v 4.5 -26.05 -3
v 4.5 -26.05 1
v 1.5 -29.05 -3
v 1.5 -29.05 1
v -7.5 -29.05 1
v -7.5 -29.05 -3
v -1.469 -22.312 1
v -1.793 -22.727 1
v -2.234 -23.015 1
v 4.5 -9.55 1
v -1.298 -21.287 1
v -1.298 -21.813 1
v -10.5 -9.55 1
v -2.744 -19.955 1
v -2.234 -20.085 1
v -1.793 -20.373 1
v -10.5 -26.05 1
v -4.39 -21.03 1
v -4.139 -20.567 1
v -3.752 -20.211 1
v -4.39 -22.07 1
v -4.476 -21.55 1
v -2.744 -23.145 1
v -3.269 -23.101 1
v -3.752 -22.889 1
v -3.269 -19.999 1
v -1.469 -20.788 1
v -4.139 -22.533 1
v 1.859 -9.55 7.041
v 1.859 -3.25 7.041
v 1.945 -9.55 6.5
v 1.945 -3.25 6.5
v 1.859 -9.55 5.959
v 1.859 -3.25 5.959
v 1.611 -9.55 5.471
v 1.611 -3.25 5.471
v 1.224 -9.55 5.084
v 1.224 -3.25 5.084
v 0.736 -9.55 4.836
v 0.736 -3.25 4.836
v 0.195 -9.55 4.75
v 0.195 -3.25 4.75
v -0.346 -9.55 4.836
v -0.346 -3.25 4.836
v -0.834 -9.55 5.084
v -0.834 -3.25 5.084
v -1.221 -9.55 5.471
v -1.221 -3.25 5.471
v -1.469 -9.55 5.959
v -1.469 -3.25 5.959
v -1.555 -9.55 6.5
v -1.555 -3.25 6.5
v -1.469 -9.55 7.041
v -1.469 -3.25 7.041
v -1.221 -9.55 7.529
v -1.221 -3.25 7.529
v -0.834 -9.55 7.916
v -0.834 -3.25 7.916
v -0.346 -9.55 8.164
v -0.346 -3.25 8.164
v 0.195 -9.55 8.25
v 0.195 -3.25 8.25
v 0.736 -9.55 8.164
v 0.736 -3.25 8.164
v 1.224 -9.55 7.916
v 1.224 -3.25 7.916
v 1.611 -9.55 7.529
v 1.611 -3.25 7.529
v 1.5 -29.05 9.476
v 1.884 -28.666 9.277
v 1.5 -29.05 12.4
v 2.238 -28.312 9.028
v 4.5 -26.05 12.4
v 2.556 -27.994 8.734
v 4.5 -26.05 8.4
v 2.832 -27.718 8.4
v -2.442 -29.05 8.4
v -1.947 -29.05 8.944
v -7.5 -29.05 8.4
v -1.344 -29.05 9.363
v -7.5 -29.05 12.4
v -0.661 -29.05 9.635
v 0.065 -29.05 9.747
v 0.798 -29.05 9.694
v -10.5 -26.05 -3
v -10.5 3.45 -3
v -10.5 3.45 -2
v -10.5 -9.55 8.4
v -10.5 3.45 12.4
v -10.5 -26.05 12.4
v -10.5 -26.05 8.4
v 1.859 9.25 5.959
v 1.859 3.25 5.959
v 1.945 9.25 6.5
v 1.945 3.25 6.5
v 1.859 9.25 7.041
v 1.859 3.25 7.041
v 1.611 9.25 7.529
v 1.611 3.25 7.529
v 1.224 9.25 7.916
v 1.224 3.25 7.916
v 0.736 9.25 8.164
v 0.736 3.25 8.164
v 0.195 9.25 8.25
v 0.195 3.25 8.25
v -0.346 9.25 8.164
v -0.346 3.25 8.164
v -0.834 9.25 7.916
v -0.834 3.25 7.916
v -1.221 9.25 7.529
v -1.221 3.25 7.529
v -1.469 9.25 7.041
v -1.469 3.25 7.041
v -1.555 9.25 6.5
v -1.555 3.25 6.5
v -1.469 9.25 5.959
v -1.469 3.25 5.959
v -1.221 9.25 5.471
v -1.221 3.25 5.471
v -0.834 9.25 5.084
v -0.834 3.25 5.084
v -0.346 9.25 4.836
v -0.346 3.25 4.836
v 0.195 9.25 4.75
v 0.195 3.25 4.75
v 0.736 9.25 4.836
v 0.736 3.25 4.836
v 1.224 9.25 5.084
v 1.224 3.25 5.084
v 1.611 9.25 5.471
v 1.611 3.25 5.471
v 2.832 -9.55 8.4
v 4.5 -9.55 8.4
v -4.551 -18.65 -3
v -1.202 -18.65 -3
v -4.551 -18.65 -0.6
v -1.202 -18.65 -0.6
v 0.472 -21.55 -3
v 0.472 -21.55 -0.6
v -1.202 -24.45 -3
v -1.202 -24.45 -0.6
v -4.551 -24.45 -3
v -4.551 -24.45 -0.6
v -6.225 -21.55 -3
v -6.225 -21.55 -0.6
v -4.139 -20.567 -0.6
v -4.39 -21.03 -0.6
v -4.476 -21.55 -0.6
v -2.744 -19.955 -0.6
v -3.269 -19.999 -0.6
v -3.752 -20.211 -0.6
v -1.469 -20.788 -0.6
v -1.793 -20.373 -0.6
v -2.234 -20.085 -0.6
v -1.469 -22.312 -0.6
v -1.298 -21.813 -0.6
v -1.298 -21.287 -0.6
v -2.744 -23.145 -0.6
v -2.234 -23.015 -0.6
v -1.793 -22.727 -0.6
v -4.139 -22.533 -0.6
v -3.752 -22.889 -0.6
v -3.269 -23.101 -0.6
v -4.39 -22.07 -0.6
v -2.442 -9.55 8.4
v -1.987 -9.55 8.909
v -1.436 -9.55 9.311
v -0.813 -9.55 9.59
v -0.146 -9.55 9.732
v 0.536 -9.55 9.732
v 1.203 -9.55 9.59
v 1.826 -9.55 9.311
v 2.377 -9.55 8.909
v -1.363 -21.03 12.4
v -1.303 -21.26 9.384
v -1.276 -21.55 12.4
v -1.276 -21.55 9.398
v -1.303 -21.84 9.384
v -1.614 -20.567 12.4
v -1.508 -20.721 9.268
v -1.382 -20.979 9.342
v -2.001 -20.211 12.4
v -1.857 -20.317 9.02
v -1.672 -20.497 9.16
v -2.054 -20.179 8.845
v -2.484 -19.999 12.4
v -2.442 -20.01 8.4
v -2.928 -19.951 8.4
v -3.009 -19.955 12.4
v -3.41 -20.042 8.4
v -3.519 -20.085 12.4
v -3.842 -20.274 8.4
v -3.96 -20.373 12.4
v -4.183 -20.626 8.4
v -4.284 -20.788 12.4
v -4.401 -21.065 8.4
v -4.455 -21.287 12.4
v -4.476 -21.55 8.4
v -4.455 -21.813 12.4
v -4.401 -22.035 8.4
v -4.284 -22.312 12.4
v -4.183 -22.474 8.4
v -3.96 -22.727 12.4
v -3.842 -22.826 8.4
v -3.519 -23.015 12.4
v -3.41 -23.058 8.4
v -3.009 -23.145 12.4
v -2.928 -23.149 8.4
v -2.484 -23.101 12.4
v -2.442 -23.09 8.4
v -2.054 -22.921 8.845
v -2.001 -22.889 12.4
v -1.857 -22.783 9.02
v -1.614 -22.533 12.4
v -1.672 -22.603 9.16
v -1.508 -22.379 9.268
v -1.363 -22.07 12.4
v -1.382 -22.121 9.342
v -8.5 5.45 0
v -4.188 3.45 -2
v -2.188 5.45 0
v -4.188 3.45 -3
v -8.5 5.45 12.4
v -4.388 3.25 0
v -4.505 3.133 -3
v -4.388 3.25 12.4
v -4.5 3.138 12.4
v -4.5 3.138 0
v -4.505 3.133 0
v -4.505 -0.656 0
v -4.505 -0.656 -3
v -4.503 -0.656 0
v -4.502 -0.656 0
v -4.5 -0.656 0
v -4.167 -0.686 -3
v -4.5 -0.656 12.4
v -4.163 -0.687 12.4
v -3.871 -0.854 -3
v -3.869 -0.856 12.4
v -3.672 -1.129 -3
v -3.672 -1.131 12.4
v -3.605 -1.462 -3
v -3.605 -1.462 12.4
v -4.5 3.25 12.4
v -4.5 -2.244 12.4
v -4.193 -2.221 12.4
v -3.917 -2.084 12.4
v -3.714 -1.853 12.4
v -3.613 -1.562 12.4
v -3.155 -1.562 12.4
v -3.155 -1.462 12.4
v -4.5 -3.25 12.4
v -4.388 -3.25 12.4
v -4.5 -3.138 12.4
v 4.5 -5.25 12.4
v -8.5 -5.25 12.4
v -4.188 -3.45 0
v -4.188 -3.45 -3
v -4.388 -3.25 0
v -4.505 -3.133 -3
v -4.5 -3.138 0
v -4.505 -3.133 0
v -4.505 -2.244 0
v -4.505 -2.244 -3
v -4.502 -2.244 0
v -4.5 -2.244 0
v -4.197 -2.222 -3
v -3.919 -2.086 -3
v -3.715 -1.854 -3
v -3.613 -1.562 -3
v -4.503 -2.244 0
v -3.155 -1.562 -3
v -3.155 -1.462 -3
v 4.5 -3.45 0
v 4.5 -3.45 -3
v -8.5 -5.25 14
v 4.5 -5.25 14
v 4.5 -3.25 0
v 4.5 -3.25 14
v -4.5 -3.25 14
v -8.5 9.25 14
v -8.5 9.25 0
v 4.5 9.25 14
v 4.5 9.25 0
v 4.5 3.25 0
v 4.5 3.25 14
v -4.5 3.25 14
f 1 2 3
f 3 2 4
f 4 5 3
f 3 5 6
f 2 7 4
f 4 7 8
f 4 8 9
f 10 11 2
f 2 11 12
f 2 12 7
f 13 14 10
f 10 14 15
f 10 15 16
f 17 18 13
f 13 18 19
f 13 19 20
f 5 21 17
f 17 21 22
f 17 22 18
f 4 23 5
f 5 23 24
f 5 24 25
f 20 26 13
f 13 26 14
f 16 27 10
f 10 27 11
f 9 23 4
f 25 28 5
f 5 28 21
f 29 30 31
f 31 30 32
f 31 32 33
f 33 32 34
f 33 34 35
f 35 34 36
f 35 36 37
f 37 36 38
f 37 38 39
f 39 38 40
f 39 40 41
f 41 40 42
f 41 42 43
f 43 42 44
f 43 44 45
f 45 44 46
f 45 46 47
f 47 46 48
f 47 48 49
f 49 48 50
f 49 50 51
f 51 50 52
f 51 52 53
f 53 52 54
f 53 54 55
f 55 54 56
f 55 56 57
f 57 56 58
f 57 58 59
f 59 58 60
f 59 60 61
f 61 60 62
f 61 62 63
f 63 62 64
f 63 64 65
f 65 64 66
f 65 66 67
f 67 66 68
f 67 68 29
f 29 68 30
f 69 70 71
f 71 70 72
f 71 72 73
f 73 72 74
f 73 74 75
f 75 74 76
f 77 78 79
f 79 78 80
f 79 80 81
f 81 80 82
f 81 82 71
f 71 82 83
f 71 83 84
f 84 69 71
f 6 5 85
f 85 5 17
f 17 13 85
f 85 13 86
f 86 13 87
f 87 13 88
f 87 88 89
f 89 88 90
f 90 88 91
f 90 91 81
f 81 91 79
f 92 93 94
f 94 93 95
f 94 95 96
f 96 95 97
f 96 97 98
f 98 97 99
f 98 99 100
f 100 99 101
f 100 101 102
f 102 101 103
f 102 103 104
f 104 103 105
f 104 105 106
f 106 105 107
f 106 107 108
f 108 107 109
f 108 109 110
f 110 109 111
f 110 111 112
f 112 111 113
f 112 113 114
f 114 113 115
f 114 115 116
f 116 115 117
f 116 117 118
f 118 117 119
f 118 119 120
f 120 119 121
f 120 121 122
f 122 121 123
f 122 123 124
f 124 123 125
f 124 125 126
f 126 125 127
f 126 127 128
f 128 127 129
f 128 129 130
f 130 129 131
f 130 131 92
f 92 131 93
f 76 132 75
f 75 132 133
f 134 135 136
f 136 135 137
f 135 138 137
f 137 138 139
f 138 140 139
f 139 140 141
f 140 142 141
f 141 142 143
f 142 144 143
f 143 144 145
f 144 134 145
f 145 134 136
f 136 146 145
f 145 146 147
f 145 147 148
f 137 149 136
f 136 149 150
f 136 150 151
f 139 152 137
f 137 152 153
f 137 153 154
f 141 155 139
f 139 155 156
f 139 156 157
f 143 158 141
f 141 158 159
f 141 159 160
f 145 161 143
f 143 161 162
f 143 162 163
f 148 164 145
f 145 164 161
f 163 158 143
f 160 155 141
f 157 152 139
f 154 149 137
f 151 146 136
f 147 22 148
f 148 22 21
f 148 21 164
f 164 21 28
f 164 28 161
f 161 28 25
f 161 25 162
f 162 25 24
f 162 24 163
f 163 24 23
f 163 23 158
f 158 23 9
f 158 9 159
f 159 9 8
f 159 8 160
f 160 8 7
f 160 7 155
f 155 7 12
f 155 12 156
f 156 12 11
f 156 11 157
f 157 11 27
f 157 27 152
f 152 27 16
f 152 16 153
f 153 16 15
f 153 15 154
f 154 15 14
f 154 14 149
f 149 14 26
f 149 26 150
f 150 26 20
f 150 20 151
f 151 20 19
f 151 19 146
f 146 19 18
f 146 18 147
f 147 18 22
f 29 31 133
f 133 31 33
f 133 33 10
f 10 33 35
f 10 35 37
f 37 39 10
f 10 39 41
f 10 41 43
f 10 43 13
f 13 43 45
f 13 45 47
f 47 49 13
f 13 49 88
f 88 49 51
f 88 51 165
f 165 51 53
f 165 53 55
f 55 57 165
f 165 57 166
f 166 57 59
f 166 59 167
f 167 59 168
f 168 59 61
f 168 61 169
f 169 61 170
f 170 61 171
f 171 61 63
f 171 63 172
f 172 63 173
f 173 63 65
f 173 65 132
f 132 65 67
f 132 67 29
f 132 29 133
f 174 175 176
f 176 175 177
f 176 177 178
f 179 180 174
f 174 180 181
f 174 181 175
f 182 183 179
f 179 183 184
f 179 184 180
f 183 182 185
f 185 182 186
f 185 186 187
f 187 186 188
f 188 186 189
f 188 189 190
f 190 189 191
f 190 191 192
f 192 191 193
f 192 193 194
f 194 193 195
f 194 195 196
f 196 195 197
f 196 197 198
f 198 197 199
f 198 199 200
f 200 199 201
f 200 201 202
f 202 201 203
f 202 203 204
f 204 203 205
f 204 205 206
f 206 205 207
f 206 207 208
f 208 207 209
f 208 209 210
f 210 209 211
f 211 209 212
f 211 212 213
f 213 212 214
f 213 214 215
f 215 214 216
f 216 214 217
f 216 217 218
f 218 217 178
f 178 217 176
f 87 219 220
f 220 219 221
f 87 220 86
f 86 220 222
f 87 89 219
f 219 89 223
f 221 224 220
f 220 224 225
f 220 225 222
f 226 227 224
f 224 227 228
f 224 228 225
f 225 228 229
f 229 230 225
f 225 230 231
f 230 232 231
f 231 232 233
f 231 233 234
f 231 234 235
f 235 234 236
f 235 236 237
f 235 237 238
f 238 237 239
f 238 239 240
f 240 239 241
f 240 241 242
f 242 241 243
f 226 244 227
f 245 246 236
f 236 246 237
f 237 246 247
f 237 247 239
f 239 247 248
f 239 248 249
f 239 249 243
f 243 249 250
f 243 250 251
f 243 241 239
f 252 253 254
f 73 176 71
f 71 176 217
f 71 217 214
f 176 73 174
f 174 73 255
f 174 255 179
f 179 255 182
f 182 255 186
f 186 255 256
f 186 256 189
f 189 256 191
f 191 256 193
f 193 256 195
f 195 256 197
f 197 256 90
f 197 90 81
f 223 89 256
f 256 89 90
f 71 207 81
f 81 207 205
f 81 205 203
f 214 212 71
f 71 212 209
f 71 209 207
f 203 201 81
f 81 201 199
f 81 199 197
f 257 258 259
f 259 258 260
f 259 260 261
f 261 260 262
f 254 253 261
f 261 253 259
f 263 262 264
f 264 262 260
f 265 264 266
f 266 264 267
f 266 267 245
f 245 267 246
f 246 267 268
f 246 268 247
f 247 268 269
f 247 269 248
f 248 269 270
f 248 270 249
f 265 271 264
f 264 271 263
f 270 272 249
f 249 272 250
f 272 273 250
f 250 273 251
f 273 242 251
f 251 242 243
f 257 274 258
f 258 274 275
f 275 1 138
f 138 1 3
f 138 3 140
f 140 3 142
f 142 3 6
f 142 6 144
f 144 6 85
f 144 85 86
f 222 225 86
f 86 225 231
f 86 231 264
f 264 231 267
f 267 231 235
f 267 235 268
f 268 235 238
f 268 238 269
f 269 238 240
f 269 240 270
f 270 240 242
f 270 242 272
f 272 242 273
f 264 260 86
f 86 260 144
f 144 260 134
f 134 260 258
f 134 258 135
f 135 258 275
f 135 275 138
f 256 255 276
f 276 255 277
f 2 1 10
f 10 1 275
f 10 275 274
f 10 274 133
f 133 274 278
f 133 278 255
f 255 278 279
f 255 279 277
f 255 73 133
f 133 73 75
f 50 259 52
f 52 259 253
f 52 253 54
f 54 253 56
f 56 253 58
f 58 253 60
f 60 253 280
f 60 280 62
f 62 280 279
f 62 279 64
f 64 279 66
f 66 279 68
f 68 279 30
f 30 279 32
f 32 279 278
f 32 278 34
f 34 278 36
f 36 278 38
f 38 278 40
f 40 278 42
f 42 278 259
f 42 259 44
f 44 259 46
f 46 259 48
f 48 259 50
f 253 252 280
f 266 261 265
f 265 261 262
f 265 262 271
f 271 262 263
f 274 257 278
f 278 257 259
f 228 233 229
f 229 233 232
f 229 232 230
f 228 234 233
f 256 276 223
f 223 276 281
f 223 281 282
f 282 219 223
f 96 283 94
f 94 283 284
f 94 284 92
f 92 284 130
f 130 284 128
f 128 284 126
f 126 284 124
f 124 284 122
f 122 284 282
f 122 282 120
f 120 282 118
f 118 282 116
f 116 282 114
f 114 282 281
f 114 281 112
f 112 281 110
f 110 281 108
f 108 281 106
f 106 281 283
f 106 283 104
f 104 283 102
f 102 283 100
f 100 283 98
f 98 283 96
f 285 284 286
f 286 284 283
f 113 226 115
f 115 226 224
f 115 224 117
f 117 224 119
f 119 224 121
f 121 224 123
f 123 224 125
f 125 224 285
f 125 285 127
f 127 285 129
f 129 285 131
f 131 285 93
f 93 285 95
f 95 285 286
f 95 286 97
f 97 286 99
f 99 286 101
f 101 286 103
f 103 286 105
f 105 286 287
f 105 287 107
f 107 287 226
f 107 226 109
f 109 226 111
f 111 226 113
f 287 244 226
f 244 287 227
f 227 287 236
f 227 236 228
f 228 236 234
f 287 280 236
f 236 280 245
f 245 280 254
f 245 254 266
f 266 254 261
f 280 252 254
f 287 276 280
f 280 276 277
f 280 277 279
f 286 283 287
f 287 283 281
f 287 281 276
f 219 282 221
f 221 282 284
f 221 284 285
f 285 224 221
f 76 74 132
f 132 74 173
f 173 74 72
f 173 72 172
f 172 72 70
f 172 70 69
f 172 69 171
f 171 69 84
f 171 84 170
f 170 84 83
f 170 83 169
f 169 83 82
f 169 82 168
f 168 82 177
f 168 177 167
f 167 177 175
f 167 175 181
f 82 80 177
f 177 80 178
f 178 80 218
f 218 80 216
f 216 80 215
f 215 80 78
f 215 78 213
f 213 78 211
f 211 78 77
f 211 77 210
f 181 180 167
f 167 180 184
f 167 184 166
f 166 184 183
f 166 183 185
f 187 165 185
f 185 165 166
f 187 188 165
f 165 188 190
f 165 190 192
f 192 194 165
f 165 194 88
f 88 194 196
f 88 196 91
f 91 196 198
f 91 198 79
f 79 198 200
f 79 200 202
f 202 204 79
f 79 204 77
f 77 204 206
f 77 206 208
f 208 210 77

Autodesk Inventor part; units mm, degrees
ref_plane "YZ Plane" through (0, 0, 0) normal (1, 0, 0) x (0, 1, 0)
ref_plane "XZ Plane" through (0, 0, 0) normal (0, 1, 0) x (-1, 0, 0)
ref_plane "XY Plane" through (0, 0, 0) normal (0, 0, 1) x (1, 0, 0)
sketch "Эскиз2" plane through (0, 0, 0) normal (0, 0, 1) x (1, 0, 0)
  line L0 (-4.5, 3.25) -> (4.5, 3.25)
  line L1 (4.5, 3.25) -> (4.5, -3.25)
  line L2 (4.5, -3.25) -> (-4.5, -3.25)
  line L3 (-4.5, -3.25) -> (-4.5, 3.25)
  line L4 (-4.5, 3.25) -> (4.5, -3.25) construction
  line L5 (4.5, 3.25) -> (-4.5, -3.25) construction
  line L6 (8.5, 9.25) -> (4.5, 9.25) construction
  line L7 (-8.5, 9.25) -> (-8.5, -5.25)
  line L8 (-8.5, -5.25) -> (4.5, -5.25)
  line L9 (8.5, -5.25) -> (8.5, 9.25) construction
  line L10 (4.5, 3.25) -> (4.5, 9.25)
  line L11 (4.5, -3.25) -> (4.5, -5.25)
  line L12 (4.5, 9.25) -> (-8.5, 9.25)
  line L13 (4.5, -5.25) -> (8.5, -5.25) construction
  point P0 (0, 0)
  dimension "d0" = 9
  dimension "d1" = 6.5
  dimension "d2" = 6
extrude "Выдавливание1" add sketch "Эскиз2" along normal blind 14 contours L3 L2 L11 L8 L7 L12 L10 L0
sketch "Эскиз4" plane through (0, 0, 0) normal (0, 0, -1) x (-1, 0, 0)
  line L0 (2.9551, -1.2625) -> (2.9551, -1.7625) construction
  line L1 (2.9551, -1.7625) -> (3.4551, -1.7625) construction
  arc A0 (3.4551, -1.7625) -> (4.305, -2.445) centre (4.405, -1.45) ccw construction
  line L2 (4.305, -2.445) -> (4.305, -3.05) construction
  line L3 (4.305, -3.05) -> (4.105, -3.25) construction
  line L4 (4.105, -3.25) -> (-4.495, -3.25) construction
  line L5 (-4.495, -3.25) -> (-4.695, -3.05) construction
  line L6 (-4.695, -3.05) -> (-4.695, -2.445) construction
  arc A1 (-4.695, -2.445) -> (-3.8451, -1.7625) centre (-4.795, -1.45) ccw construction
  line L7 (-3.8451, -1.7625) -> (-3.3451, -1.7625) construction
  line L8 (-3.3451, -1.7625) -> (-3.3451, -1.2625) construction
  line L9 (-3.3451, -1.2625) -> (-3.8127, -1.2625) construction
  arc A2 (-3.8127, -1.2625) -> (-4.695, -0.455) centre (-4.795, -1.45) ccw construction
  line L10 (-4.695, -0.455) -> (-4.695, 3.05) construction
  line L11 (-4.695, 3.05) -> (-4.495, 3.25) construction
  line L12 (-4.495, 3.25) -> (4.105, 3.25) construction
  line L13 (4.105, 3.25) -> (4.305, 3.05) construction
  line L14 (4.305, 3.05) -> (4.305, -0.455) construction
  arc A3 (4.305, -0.455) -> (3.4227, -1.2625) centre (4.405, -1.45) ccw construction
  line L15 (3.4227, -1.2625) -> (2.9551, -1.2625) construction
  line L16 (4.1878, 3.45) -> (-4.5778, 3.45) construction
  line L17 (-4.5778, 3.45) -> (-4.895, 3.1328) construction
  line L18 (-4.895, 3.1328) -> (-4.895, -0.6563) construction
  arc A4 (-3.9951, -1.4625) -> (-4.895, -0.6563) centre (-4.795, -1.45) ccw construction
  line L19 (-3.9951, -1.4625) -> (-3.5451, -1.4625) construction
  line L20 (-3.5451, -1.4625) -> (-3.5451, -1.5625) construction
  line L21 (-3.5451, -1.5625) -> (-4.0029, -1.5625) construction
  arc A5 (-4.895, -2.2437) -> (-4.0029, -1.5625) centre (-4.795, -1.45) ccw construction
  line L22 (-4.895, -2.2437) -> (-4.895, -3.1328) construction
  line L23 (-4.895, -3.1328) -> (-4.5778, -3.45) construction
  line L24 (-4.5, -3.45) -> (4.1878, -3.45)
  line L25 (4.1878, -3.45) -> (4.505, -3.1328)
  line L26 (4.505, -3.1328) -> (4.505, -2.2437)
  arc A6 (3.6129, -1.5625) -> (4.505, -2.2437) centre (4.405, -1.45) ccw
  line L27 (3.6129, -1.5625) -> (3.1551, -1.5625)
  line L28 (3.1551, -1.5625) -> (3.1551, -1.4625)
  line L29 (3.1551, -1.4625) -> (3.6051, -1.4625)
  arc A7 (4.505, -0.6563) -> (3.6051, -1.4625) centre (4.405, -1.45) ccw
  line L30 (4.505, -0.6563) -> (4.505, 3.1328)
  line L31 (4.505, 3.1328) -> (4.1878, 3.45)
  line L32 (4.1878, 3.45) -> (8.5, 3.45)
  line L33 (8.5, 9.25) -> (8.5, -5.25) projected
  line L34 (-4.5, -5.25) -> (-4.5, -3.25) projected
  line L35 (-4.5, -3.45) -> (-4.5, -29.05)
  line L36 (-4.5, -29.05) -> (10.5, -29.05)
  line L37 (10.5, -29.05) -> (10.5, 3.45)
  line L38 (10.5, 3.45) -> (8.5, 3.45)
  point P0 (0, 0)
  dimension "d10" = 0.2
  dimension "d12" = 4.3122
  dimension "d13" = 15
extrude "Выдавливание3" add sketch "Эскиз4" along normal blind 3 and the other way blind 12.4
chamfer "Фаска1" distance 2 angle 45 1 edges at (-8.5, 3.45, 6.2)
chamfer "Фаска2" distance 2 angle 45 1 edges at (-6.3439, 3.45, 0)
ref_plane "РабПлоскость1" through (0, 0, 4.7) normal (0, 0, -1) x (-1, 0, 0)
sketch "Эскиз5" plane through (0, 0, 4.7) normal (0, 0, -1) x (-1, 0, 0)
  circle A0 centre (2.8764, -21.55) radius 11 construction
  line L0 (-4.5, -29.05) -> (10.5, -29.05) construction
  circle A1 centre (2.8764, -21.55) radius 1.6
  line L1 (10.5, -29.05) -> (10.5, 3.45) projected
  line L2 (10.5, -29.05) -> (10.5, -9.55)
  line L3 (10.5, -9.55) -> (-4.5, -9.55)
  line L4 (-4.5, -3.45) -> (-4.5, -29.05) projected
  line L5 (-4.5, -9.55) -> (-4.5, -29.05)
  line L6 (-4.5, -29.05) -> (10.5, -29.05)
  point P0 (0, 0)
  dimension "d27" = 22
  dimension "d28" = 7.5
  dimension "d29" = 3.2
  dimension "d30" = 12
extrude "Выдавливание4" cut sketch "Эскиз5" along normal mid plane 7.4
extrude "Выдавливание5" cut sketch "Эскиз5" along normal mid plane 20 contours A1
sketch "Эскиз6" plane through (0, 0, -3) normal (0, 0, -1) x (-1, 0, 0)
  circle A0 centre (2.8764, -21.55) radius 1.6 construction
  circle A1 centre (2.8764, -21.55) radius 1.6 projected
  line L0 (4.5507, -24.45) -> (1.2021, -24.45)
  line L1 (1.2021, -24.45) -> (-0.4722, -21.55)
  line L2 (-0.4722, -21.55) -> (1.2021, -18.65)
  line L3 (1.2021, -18.65) -> (4.5507, -18.65)
  line L4 (4.5507, -18.65) -> (6.2251, -21.55)
  line L5 (6.2251, -21.55) -> (4.5507, -24.45)
  line L6 (-4.5, -29.05) -> (10.5, -29.05) projected
  point P0 (0, 0)
  dimension "d35" = 5.8
extrude "Выдавливание6" cut sketch "Эскиз6" against normal blind 2.4
sketch "Эскиз3" plane through (-8.5, 9.25, 0) normal (0, 1, 0) x (1, 0, 0)
  line L0 (13, 0) -> (0, 0) construction
  circle A0 centre (8.695, -6.5) radius 1.75
  line L1 (13, 0) -> (13, -14) projected
  point P0 (8.5, 0)
  dimension "d5" = 3.5
  dimension "d9" = 4.305
extrude "Выдавливание2" cut sketch "Эскиз3" against normal blind 20
chamfer "Фаска5" distance 3 angle 45 4 edges at (-10.5, -29.05, 10.4) (-10.5, -29.05, -1) (4.5, -29.05, 10.4) (4.5, -29.05, -1)
sketch "Эскиз7" plane through (-10.5, -9.55, 8.4) normal (0, -1, 0) x (1, 0, 0)
  circle A0 centre (10.695, -1.9) radius 1.75 projected
  circle A1 centre (10.695, -1.9) radius 3.25
  point P0 (10.5, -8.4)
  dimension "d44" = 6.5
extrude "Выдавливание7" cut sketch "Эскиз7" along normal blind 20
properties part number "ограничитель" material "Полипропилен"
